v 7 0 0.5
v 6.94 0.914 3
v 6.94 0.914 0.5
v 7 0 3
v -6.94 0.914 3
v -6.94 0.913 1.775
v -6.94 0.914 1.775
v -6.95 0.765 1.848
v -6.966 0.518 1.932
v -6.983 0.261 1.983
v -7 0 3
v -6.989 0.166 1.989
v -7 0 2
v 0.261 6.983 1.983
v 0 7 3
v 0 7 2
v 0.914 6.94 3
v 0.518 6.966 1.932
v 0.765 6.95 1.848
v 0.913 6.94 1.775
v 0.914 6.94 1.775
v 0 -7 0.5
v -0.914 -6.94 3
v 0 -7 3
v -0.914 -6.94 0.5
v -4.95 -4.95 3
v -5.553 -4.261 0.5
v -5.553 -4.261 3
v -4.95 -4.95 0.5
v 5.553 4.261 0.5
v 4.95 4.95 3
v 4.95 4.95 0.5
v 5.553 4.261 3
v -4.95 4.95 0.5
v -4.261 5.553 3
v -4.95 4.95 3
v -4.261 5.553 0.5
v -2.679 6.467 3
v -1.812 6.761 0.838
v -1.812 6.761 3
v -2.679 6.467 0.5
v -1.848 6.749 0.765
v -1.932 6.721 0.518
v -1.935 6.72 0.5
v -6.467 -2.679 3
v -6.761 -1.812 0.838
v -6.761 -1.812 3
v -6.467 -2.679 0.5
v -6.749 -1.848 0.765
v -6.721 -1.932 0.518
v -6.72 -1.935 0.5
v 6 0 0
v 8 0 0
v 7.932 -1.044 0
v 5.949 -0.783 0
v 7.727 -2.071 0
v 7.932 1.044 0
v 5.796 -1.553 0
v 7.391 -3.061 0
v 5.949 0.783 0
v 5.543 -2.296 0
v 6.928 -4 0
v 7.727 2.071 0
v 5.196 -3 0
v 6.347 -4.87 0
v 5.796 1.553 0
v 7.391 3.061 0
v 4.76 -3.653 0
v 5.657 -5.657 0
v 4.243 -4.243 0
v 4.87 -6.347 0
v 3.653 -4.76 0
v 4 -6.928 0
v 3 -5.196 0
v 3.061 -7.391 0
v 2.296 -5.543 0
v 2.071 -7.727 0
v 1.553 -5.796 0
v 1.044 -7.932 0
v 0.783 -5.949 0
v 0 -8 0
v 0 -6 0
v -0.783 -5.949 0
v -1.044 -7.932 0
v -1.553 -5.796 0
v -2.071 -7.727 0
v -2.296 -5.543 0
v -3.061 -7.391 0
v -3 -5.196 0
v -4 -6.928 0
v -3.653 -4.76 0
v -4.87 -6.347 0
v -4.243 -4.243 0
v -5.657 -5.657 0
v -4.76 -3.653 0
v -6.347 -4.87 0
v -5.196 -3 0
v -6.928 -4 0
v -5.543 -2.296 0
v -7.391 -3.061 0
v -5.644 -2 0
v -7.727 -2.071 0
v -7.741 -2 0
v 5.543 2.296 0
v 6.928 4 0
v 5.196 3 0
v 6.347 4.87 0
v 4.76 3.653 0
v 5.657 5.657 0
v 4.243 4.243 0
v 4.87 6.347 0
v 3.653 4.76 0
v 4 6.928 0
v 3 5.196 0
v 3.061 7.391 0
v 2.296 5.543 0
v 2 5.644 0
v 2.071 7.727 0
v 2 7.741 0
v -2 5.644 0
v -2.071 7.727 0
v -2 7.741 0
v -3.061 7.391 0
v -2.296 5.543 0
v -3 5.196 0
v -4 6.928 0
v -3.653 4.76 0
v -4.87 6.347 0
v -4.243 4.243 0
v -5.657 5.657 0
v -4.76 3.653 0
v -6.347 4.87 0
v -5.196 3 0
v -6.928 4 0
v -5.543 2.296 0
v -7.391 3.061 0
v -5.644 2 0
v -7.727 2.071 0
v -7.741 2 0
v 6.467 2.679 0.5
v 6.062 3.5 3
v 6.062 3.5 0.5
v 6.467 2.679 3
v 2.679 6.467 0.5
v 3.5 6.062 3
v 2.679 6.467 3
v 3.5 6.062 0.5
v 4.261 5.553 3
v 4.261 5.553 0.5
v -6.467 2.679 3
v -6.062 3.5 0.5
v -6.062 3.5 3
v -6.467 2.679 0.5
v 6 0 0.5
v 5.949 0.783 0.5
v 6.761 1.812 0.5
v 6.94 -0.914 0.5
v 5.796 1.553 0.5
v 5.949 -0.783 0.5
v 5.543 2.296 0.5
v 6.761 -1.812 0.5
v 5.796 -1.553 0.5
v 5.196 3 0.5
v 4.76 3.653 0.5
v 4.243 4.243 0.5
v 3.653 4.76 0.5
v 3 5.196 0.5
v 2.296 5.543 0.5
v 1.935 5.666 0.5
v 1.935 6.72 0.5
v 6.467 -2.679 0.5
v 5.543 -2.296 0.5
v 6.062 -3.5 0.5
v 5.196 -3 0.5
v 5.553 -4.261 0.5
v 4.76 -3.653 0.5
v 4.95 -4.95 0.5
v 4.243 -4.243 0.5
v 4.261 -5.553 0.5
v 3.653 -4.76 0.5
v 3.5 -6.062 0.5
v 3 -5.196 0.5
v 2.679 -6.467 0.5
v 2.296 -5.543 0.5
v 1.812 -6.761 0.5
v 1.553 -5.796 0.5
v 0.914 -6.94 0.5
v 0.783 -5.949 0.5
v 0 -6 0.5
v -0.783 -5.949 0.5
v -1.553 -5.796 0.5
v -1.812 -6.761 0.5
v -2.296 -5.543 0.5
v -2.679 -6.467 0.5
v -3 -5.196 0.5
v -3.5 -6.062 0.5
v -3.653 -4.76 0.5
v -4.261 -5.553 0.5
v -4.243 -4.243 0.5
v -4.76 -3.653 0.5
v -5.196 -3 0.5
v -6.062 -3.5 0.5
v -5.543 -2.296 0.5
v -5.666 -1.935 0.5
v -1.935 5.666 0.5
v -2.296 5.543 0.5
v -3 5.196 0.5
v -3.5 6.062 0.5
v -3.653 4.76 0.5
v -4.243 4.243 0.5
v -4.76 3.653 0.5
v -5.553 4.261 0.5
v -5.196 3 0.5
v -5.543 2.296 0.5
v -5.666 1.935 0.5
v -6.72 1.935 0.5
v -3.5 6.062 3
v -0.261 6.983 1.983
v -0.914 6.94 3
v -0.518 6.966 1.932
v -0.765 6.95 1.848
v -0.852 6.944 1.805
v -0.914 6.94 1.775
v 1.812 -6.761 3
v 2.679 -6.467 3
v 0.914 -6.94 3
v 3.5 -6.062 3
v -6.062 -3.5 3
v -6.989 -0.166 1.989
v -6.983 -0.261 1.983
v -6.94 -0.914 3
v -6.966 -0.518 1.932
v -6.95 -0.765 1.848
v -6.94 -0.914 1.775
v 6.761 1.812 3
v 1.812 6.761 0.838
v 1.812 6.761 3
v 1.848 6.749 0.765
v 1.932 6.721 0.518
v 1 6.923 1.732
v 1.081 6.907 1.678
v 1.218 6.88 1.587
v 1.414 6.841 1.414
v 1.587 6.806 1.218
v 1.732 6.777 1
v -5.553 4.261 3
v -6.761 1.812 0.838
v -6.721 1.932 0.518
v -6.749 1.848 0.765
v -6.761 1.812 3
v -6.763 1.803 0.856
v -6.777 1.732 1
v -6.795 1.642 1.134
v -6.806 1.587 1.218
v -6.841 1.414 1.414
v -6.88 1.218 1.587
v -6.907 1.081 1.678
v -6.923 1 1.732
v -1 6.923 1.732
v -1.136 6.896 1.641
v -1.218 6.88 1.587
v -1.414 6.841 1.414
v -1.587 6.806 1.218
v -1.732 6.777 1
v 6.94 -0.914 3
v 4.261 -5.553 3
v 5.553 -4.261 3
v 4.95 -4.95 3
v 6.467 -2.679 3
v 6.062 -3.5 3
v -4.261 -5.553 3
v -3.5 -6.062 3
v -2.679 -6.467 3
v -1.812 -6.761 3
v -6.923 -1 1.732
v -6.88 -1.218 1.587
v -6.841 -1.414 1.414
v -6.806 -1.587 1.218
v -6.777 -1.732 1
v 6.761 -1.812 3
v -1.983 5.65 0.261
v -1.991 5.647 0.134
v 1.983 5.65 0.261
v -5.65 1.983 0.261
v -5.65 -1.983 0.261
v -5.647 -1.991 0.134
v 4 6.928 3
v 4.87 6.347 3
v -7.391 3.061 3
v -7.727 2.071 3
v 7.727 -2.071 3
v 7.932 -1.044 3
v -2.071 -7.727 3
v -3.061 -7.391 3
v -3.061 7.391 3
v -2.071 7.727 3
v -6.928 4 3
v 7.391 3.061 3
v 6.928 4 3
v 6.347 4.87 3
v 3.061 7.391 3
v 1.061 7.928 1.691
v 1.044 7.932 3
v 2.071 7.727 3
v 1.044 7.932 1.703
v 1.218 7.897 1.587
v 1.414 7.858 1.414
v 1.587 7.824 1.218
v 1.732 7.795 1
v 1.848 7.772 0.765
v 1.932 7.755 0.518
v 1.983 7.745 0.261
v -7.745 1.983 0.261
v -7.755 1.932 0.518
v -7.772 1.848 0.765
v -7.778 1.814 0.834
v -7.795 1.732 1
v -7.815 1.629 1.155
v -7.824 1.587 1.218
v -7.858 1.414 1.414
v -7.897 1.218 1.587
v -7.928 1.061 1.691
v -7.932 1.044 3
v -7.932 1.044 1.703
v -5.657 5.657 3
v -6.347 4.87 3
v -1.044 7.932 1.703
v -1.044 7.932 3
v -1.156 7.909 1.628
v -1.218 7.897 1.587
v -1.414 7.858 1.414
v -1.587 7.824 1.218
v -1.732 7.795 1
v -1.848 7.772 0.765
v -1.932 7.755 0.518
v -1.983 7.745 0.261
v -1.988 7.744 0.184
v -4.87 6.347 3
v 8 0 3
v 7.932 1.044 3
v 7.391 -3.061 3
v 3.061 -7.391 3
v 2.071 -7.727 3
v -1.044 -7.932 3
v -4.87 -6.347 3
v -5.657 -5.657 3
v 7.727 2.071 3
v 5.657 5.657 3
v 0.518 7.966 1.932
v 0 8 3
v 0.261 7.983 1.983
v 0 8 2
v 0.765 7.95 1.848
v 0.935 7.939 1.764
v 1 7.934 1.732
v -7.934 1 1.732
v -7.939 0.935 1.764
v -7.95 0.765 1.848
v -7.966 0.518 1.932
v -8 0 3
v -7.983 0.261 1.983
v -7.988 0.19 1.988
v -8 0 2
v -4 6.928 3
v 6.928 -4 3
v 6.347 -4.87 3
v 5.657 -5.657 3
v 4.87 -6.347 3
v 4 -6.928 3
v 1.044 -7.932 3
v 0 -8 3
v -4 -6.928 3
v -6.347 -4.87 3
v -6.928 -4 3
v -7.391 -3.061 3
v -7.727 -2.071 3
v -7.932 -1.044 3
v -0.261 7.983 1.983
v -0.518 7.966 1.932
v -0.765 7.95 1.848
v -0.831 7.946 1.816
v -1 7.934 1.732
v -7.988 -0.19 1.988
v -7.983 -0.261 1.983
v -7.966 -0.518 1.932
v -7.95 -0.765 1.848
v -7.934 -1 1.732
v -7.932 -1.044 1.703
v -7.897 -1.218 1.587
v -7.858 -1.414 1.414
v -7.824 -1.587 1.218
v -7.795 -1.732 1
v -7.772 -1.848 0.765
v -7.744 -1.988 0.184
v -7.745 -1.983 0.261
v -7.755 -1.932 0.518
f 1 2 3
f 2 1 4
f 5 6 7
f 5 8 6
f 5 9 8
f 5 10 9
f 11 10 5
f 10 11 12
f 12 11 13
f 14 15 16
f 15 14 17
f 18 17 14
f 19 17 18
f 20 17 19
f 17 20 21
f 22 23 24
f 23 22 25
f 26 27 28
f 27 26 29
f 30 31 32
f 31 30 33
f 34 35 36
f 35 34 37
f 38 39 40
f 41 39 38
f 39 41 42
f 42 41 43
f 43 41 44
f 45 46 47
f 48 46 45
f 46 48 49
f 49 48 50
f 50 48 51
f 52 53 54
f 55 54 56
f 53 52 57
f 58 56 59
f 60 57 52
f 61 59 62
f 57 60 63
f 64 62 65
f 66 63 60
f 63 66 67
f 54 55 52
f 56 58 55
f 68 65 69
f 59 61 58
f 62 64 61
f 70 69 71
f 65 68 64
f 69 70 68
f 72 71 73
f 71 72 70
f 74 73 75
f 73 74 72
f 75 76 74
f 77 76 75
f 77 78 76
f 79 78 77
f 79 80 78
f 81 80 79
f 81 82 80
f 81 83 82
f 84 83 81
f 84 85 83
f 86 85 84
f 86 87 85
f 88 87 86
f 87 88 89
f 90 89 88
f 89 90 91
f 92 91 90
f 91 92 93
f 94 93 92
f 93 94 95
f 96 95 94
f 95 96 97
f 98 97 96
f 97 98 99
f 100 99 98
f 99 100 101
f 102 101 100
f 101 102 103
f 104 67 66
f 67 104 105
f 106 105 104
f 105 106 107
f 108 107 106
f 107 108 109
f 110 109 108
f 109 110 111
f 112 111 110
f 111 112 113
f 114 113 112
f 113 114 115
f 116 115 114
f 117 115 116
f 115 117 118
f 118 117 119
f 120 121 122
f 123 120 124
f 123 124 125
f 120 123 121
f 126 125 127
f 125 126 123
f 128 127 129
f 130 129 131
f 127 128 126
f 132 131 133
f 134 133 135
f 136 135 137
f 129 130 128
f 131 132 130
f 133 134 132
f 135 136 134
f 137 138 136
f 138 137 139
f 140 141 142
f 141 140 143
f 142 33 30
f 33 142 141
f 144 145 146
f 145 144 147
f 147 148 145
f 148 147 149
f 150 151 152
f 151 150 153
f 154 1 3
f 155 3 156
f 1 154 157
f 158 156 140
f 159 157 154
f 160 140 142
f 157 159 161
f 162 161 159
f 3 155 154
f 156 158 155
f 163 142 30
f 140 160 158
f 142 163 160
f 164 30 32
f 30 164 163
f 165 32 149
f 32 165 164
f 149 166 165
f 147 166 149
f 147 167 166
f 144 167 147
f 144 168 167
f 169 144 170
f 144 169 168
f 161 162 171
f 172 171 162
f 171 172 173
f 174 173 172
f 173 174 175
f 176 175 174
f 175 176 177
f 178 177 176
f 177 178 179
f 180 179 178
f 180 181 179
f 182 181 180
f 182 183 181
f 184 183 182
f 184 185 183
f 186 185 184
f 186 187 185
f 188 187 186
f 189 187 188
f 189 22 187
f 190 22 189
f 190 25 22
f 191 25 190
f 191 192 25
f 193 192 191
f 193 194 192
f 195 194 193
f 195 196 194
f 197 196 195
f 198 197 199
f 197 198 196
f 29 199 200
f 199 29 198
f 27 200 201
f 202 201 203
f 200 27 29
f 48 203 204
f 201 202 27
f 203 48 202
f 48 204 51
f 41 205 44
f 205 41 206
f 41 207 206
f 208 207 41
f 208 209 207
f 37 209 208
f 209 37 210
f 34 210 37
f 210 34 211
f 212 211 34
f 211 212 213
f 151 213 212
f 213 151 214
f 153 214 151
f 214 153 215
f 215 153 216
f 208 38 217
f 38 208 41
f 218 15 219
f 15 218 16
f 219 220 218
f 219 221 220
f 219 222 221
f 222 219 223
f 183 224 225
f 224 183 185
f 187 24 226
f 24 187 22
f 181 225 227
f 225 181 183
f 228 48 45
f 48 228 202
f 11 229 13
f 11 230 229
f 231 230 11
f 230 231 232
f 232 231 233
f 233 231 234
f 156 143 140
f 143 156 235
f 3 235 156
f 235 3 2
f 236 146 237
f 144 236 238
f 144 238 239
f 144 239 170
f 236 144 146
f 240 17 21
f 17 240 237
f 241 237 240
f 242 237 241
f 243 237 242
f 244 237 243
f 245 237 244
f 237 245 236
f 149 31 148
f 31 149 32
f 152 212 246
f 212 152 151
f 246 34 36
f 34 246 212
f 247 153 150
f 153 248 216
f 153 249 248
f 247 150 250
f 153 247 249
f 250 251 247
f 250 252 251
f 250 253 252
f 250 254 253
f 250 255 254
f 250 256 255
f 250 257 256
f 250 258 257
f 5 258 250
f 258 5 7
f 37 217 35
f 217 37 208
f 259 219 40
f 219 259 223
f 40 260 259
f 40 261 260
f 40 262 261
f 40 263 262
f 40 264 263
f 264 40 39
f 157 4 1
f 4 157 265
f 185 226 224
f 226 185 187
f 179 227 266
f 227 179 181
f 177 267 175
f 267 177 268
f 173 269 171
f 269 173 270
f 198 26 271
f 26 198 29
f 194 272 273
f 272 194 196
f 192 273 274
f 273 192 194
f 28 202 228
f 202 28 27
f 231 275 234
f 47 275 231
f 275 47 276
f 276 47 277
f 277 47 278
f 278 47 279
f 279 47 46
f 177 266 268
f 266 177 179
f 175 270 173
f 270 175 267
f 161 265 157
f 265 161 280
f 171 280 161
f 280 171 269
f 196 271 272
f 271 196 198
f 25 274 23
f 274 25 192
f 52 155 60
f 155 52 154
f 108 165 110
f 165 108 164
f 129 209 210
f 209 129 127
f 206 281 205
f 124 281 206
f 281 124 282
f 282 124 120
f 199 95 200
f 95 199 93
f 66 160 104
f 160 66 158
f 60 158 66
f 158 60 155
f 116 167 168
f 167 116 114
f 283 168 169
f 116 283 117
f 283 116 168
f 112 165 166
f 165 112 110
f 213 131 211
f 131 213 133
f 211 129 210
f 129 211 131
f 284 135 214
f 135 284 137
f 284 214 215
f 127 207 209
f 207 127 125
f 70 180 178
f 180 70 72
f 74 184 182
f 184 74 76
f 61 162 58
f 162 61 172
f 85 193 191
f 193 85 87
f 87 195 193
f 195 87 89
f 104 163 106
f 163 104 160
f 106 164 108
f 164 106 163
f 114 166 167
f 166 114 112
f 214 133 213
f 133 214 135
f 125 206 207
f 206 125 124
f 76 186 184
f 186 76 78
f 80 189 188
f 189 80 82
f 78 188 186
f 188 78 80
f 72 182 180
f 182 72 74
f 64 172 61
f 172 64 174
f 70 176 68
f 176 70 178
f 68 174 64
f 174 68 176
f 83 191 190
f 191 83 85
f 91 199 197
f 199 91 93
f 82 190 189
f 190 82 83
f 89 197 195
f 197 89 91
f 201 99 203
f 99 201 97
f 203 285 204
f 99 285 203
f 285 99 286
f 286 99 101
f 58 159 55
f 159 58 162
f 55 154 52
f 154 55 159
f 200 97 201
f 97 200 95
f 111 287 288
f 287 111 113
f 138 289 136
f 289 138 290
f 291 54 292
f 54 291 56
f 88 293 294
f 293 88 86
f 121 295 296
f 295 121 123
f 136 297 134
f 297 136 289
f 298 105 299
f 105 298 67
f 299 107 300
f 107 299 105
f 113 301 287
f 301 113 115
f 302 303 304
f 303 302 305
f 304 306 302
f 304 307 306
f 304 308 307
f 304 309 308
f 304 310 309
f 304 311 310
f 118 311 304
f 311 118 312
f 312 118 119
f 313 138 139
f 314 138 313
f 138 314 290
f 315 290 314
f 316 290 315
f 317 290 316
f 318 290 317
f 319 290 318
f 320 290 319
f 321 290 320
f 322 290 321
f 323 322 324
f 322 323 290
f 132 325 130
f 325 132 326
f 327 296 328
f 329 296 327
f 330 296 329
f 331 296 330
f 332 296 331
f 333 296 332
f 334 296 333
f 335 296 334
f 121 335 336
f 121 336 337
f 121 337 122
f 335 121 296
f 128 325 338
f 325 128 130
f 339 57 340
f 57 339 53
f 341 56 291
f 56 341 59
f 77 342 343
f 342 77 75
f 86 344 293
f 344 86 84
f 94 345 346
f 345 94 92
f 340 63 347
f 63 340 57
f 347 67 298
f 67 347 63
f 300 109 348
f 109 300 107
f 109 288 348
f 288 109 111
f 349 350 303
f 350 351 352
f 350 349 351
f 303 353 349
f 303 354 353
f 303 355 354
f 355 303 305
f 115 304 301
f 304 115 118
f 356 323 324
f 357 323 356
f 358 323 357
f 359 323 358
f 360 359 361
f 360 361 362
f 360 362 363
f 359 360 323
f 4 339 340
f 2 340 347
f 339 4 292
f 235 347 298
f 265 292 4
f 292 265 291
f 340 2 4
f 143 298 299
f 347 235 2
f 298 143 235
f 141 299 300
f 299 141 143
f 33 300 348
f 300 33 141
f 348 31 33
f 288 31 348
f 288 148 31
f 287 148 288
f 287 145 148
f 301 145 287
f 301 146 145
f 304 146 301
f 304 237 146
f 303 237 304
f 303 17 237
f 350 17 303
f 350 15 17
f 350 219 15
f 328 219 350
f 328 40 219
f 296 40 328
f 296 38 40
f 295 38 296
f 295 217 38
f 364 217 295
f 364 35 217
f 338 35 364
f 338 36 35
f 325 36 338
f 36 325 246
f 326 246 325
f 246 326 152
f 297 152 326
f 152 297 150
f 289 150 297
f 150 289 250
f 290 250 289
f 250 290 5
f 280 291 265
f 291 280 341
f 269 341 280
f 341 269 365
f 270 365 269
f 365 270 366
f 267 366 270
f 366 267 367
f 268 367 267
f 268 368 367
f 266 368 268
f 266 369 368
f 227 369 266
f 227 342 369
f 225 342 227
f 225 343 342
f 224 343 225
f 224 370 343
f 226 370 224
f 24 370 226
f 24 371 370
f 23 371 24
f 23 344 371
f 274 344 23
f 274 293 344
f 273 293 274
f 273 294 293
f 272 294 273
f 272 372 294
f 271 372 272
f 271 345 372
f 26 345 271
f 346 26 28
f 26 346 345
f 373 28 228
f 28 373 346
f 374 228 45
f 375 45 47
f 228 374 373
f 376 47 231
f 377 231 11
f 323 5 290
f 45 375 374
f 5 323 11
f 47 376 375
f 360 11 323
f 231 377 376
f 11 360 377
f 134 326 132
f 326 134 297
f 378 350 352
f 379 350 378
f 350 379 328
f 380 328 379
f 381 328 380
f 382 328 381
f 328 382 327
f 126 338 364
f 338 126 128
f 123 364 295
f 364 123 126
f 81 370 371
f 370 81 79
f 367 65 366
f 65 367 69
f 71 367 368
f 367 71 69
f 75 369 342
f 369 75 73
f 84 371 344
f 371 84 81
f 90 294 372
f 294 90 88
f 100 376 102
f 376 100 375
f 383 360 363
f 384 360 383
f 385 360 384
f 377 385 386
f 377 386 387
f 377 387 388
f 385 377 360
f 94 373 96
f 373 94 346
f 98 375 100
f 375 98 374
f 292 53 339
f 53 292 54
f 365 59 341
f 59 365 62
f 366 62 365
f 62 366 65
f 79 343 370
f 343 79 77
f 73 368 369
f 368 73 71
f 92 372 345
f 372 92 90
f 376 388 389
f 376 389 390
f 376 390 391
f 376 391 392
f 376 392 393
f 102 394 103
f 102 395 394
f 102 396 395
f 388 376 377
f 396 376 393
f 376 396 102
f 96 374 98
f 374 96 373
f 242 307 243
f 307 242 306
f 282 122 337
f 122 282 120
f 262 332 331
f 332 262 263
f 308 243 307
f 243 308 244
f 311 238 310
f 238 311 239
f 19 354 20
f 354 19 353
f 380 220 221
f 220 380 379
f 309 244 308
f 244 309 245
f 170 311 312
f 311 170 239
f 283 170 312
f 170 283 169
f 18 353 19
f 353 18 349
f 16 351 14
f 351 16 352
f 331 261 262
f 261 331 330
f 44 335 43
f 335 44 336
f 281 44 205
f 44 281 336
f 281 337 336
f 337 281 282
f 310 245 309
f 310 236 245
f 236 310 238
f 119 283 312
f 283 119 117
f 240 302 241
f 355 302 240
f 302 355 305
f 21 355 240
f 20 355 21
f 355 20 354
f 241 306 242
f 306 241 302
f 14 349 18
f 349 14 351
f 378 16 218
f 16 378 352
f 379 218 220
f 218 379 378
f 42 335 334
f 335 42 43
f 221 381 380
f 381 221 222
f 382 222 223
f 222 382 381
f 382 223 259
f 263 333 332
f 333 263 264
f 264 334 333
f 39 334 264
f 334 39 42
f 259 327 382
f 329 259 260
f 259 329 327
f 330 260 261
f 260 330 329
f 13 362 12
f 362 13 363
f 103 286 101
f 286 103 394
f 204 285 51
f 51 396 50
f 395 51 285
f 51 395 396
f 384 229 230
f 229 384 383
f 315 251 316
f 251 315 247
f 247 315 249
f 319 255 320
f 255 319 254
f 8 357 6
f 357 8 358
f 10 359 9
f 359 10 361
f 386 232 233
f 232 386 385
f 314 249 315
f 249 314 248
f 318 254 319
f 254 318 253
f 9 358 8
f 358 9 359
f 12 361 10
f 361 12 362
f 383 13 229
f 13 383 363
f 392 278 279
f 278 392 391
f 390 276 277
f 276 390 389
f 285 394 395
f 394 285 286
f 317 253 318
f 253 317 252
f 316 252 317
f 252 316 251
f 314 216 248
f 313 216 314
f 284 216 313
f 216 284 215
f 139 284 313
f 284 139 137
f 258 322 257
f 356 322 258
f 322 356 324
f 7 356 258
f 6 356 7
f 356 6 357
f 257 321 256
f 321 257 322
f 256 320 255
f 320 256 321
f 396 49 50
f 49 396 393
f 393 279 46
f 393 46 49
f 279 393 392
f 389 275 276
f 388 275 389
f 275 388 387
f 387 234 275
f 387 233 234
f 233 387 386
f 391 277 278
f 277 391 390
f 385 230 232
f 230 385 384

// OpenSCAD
// file: ../build_environments.scad
// build_environments.scad: modules to build level sections
//

module pool(diameter=10.0, wall_height=2.0, step_width=3.0, connections=[])
{
    difference() {
        union() {
        difference() {
            cylinder(h=0.5,r1=diameter+step_width,r2=diameter+step_width,$fn=48);
            translate([0,0,-0.1])
                cylinder(h=0.7,r1=diameter,r2=diameter,$fn=48);
        }
        difference() {
            cylinder(h=wall_height,r1=diameter+step_width+1.0,r2=diameter+step_width+1.0,$fn=48);
            translate([0,0,-0.1])
                cylinder(h=wall_height+0.2,r1=diameter+step_width,r2=diameter+step_width,$fn=48);
        }
        }
    
        for (c = connections)
        {
            rotate([0,90,0]) {
                angle = atan2(c[1],c[0]);
                rotate([-angle,0,0]) {
                    cylinder(h=diameter+5.0,r1=c[2],r2=c[2],$fn=48);
                }
            }
        }
    }
}

module straight(length=10.0, width=2.0, dy1=0.0, dy2=0.0, dz=0.0)
{
    dims = [0, 0, 0, 0, 0, (dz/length)];
    matrix = [
        [ 1, dims[0], dims[1], 0 ],
        [ dims[2], 1, dims[4], 0 ],
        [ dims[5], dims[3], 1, 0 ],
        [ 0, 0, 0, 1 ]
    ];
    multmatrix(matrix)
    difference() {
        translate([dy1,0,0])
        union() {
            rotate([0,90,0]) {
                difference() {
                    cylinder(h=(length-dy1-dy2),r1=width+1.0,r2=width+1.0,$fn=24);
                    translate([0,0,-0.1])
                        cylinder(h=(length-dy1-dy2+0.2),r1=width,r2=width,$fn=24);
                }
                difference() {
                    cylinder(h=1.0,r1=width+2.0,r2=width+2.0,$fn=24);
                    translate([0,0,-0.1])
                        cylinder(h=1.2,r1=width,r2=width,$fn=24);
                }
                translate([0,0,(length-dy1-dy2)-1.0]) {
                    difference() {
                        cylinder(h=1.0,r1=width+2.0,r2=width+2.0,$fn=24);
                        translate([0,0,-0.1])
                            cylinder(h=1.2,r1=width,r2=width,$fn=24);
                    }
                }
            }
        }
        translate([0,0,-(2*width+4.0)/2])
            cube([3*length,3*length,2*width+4.0],center=true);
    }
}

module curve(p0=[0,0], center=[0,0], dir=1, angle=0.0, width=2.0)
{
    radius = sqrt((p0[0]-center[0])*(p0[0]-center[0]) + (p0[1]-center[1])*(p0[1]-center[1]));
    if (dir == 0) {
        difference() {
            rotate([0,0,-90])
            difference() {
                rotate_extrude(angle = angle, convexity = 10, $fn=32)
                    translate([radius, 0, 0])
                        circle(r = width+1.0,$fn=24);
                rotate([0,0,-1.0])
                    rotate_extrude(angle = angle+2.0, convexity = 10, $fn=32)
                        translate([radius, 0, 0])
                            circle(r = width,$fn=24);
            }
            translate([0,0,-(2*width+4.0)/2])
                cube([5*radius,5*radius,2*width+4.0],center=true);
        }
    }
    else {
        difference() {
            rotate([0,0,90])
            difference() {
                rotate_extrude(angle = -angle, convexity = 10, $fn=32)
                    translate([radius, 0, 0])
                        circle(r = width+1.0,$fn=24);
                rotate([0,0,1.0])
                    rotate_extrude(angle = -angle-2.0, convexity = 10, $fn=32)
                        translate([radius, 0, 0])
                            circle(r = width,$fn=24);
            }
            translate([0,0,-(2*width+4.0)/2])
                cube([5*radius,5*radius,2*width+4.0],center=true);
        }
    }

}

// test pool
//pool(diameter=12.0000, wall_height=3.0000, step_width=3.0000, connections=[[0.0000,-26.0000,2.0000], [23.6074,0.0000,2.0000]]);

// test straight, slope
//straight(length=26.0000, width=2.0000, dy1=11.8322, dy2=6.7082, dz=0.0000);
//straight(length=29.1549, width=12.0000, dy1=0.0000, dy2=0.0000, dz=-15.0000);

// test curve
//curve(p0=[23.6074, 0.0000], center=[23.6074, 5.0000], dir=0, angle=60.1011, width=2.0000);
//curve(p0=[33.6426, 12.4219], center=[37.9771, 9.9295], dir=1, angle=120.4627, width=2.0000);
// main file
use <../build_environments.scad>;
pool(diameter=6.0000, wall_height=3.0000, step_width=1.0000, connections=[[0.0000,16.0000,2.0000], [-16.0000,0.0000,2.0000]]);
